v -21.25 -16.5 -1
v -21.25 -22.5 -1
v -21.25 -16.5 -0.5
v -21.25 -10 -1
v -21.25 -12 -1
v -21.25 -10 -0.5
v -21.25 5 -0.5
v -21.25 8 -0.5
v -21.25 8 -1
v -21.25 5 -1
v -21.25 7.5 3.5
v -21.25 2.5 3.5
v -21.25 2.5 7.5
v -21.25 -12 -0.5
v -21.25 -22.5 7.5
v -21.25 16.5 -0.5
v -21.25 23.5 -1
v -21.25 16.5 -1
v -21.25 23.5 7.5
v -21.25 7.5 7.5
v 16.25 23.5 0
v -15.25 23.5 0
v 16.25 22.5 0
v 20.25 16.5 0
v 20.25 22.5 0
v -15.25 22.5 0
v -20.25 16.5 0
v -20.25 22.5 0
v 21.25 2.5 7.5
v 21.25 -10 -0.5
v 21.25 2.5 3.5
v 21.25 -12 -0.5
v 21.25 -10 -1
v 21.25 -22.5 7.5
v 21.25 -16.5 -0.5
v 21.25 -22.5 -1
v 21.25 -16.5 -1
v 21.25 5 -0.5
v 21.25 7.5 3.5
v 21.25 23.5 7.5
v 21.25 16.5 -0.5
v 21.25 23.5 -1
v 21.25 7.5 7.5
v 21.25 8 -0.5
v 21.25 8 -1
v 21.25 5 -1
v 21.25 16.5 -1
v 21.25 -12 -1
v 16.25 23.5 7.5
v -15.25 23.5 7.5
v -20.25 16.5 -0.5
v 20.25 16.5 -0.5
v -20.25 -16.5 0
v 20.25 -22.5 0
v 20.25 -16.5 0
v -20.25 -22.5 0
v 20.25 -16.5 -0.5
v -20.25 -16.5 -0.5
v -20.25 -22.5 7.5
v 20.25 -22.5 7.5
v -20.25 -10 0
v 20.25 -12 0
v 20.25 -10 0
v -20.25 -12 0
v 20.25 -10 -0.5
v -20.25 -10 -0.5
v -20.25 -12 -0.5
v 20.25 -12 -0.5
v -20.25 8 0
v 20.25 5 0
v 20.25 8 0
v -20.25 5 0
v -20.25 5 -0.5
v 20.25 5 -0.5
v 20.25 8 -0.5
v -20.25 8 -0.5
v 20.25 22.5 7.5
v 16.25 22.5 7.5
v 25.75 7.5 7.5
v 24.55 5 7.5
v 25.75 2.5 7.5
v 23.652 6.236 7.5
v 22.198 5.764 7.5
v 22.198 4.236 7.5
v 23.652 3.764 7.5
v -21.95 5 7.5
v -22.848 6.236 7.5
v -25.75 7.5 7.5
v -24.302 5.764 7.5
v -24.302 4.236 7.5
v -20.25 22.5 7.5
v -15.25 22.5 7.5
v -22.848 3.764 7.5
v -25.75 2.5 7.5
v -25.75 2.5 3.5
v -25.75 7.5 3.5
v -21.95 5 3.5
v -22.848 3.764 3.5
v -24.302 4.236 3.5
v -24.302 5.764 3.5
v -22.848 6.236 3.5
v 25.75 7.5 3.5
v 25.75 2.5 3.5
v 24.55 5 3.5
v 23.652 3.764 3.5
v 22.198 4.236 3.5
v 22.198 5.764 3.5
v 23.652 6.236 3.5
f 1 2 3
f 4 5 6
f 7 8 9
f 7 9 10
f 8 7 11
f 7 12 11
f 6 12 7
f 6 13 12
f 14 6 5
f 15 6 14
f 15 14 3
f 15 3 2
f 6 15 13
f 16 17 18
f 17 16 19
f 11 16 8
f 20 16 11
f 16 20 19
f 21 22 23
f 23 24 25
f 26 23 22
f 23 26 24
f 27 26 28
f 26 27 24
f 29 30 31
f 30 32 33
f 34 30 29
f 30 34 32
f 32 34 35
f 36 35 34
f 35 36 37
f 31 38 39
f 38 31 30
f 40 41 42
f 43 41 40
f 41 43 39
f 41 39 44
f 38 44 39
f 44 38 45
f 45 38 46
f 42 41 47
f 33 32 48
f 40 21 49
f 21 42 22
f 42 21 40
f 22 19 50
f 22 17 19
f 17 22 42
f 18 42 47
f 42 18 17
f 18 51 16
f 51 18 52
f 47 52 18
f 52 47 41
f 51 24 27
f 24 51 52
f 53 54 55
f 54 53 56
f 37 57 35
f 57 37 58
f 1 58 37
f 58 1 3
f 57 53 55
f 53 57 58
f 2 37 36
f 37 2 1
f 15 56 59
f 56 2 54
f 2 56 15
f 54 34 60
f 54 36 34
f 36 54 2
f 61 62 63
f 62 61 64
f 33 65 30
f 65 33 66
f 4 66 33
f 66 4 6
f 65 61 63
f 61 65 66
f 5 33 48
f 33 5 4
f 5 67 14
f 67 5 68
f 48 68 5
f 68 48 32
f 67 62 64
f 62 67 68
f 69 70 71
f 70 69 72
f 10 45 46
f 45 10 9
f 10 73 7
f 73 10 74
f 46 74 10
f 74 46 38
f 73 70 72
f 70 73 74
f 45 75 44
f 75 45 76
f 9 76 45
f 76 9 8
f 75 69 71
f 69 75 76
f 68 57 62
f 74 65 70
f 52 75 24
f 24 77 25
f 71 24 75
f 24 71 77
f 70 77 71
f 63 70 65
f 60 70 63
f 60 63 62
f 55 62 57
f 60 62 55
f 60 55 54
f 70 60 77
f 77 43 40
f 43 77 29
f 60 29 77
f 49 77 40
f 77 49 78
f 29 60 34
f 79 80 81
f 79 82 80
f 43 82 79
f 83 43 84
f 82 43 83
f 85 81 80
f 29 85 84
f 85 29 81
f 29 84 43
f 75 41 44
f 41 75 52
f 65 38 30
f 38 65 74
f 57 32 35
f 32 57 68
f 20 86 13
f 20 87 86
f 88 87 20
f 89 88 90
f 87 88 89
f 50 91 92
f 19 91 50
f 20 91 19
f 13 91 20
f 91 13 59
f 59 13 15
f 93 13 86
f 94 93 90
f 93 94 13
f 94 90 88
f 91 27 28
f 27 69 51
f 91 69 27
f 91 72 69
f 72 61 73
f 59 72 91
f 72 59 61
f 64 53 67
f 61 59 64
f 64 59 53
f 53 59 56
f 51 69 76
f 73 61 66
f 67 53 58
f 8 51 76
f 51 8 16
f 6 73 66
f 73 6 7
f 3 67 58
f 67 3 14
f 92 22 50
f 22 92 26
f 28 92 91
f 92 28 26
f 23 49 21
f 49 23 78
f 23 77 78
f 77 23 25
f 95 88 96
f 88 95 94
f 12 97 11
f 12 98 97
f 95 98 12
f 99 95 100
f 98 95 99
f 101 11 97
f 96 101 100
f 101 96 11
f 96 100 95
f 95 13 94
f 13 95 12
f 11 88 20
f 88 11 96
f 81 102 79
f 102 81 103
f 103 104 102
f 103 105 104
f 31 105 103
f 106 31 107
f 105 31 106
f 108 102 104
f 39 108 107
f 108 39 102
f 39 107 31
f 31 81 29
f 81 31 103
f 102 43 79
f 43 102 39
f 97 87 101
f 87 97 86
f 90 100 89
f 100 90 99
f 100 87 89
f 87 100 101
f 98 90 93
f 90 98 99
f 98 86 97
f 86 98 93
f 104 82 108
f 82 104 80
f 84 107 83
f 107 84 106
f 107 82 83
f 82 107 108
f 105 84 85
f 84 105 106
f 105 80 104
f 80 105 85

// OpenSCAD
WIDTH=40.5;
LENGTH=45;
WALL_THICKNESS=1;
WALL_LENGTH_1=45;//32.5;
WALL_LENGTH_2=4;
WALL_HEIGHT=8;

SCREW_SUPPORT_SIZE=5;
SCREW_SUPPORT_OFFSET=5;
SCREW_RADIUS=2.6/2;

module bottom() {
    difference() {
    union() {
    //translate([0,0,-WALL_THICKNESS/2]) cube([WIDTH+2*WALL_THICKNESS, LENGTH+2*WALL_THICKNESS, WALL_THICKNESS], center=true);
        
    translate([0,-(7/2)+LENGTH/2+WALL_THICKNESS,-WALL_THICKNESS/2]) cube([WIDTH+2*WALL_THICKNESS, 7, WALL_THICKNESS], center=true);
        
    translate([0,(6/2)-LENGTH/2,-WALL_THICKNESS/2]) cube([WIDTH+2*WALL_THICKNESS, 6, WALL_THICKNESS], center=true);
        
    translate([0,-11,-WALL_THICKNESS/2]) cube([WIDTH+2*WALL_THICKNESS, 2, WALL_THICKNESS], center=true);
        
    translate([0,6.5,-WALL_THICKNESS/2]) cube([WIDTH+2*WALL_THICKNESS, 3, WALL_THICKNESS], center=true);
        
    /* right and left */
    translate([+(WIDTH+WALL_THICKNESS)/2,(LENGTH-WALL_LENGTH_1)/2+WALL_THICKNESS/2,WALL_HEIGHT/2-WALL_THICKNESS/2]) cube([WALL_THICKNESS, WALL_LENGTH_1+WALL_THICKNESS, WALL_HEIGHT], center=true);
    
    translate([-(WIDTH+WALL_THICKNESS)/2,(LENGTH-WALL_LENGTH_1)/2+WALL_THICKNESS/2,WALL_HEIGHT/2-WALL_THICKNESS/2]) cube([WALL_THICKNESS, WALL_LENGTH_1+WALL_THICKNESS, WALL_HEIGHT], center=true);
    
    /* back */
    translate([-(WIDTH-WALL_LENGTH_2)/2+WALL_THICKNESS/2,(LENGTH+WALL_THICKNESS)/2, WALL_HEIGHT/2-WALL_THICKNESS/2]) cube([WALL_LENGTH_2+WALL_THICKNESS, WALL_THICKNESS, WALL_HEIGHT], center=true);
    
    translate([+(WIDTH-WALL_LENGTH_2)/2+WALL_THICKNESS/2,(LENGTH+WALL_THICKNESS)/2, WALL_HEIGHT/2-WALL_THICKNESS/2]) cube([WALL_LENGTH_2+WALL_THICKNESS, WALL_THICKNESS, WALL_HEIGHT], center=true);
    
    /* screw support */
    translate([-(WIDTH/2+WALL_THICKNESS/2+SCREW_SUPPORT_SIZE/2), SCREW_SUPPORT_OFFSET, WALL_HEIGHT/4+WALL_HEIGHT/2-WALL_THICKNESS/2]) cube([SCREW_SUPPORT_SIZE, SCREW_SUPPORT_SIZE, WALL_HEIGHT/2], center=true);
    translate([+(WIDTH/2+WALL_THICKNESS/2+SCREW_SUPPORT_SIZE/2), SCREW_SUPPORT_OFFSET, WALL_HEIGHT/4+WALL_HEIGHT/2-WALL_THICKNESS/2]) cube([SCREW_SUPPORT_SIZE, SCREW_SUPPORT_SIZE, WALL_HEIGHT/2], center=true);
    }
    union() {
    translate([-(WIDTH/2+WALL_THICKNESS/2+SCREW_SUPPORT_SIZE/2), SCREW_SUPPORT_OFFSET, WALL_HEIGHT/4+WALL_HEIGHT/2-WALL_THICKNESS/2]) cylinder(h=50, r1=SCREW_RADIUS, r2=SCREW_RADIUS, center=true);
    translate([+(WIDTH/2+WALL_THICKNESS/2+SCREW_SUPPORT_SIZE/2), SCREW_SUPPORT_OFFSET, WALL_HEIGHT/4+WALL_HEIGHT/2-WALL_THICKNESS/2]) cylinder(h=50, r1=SCREW_RADIUS, r2=SCREW_RADIUS, center=true);
    }
}
}


bottom();
